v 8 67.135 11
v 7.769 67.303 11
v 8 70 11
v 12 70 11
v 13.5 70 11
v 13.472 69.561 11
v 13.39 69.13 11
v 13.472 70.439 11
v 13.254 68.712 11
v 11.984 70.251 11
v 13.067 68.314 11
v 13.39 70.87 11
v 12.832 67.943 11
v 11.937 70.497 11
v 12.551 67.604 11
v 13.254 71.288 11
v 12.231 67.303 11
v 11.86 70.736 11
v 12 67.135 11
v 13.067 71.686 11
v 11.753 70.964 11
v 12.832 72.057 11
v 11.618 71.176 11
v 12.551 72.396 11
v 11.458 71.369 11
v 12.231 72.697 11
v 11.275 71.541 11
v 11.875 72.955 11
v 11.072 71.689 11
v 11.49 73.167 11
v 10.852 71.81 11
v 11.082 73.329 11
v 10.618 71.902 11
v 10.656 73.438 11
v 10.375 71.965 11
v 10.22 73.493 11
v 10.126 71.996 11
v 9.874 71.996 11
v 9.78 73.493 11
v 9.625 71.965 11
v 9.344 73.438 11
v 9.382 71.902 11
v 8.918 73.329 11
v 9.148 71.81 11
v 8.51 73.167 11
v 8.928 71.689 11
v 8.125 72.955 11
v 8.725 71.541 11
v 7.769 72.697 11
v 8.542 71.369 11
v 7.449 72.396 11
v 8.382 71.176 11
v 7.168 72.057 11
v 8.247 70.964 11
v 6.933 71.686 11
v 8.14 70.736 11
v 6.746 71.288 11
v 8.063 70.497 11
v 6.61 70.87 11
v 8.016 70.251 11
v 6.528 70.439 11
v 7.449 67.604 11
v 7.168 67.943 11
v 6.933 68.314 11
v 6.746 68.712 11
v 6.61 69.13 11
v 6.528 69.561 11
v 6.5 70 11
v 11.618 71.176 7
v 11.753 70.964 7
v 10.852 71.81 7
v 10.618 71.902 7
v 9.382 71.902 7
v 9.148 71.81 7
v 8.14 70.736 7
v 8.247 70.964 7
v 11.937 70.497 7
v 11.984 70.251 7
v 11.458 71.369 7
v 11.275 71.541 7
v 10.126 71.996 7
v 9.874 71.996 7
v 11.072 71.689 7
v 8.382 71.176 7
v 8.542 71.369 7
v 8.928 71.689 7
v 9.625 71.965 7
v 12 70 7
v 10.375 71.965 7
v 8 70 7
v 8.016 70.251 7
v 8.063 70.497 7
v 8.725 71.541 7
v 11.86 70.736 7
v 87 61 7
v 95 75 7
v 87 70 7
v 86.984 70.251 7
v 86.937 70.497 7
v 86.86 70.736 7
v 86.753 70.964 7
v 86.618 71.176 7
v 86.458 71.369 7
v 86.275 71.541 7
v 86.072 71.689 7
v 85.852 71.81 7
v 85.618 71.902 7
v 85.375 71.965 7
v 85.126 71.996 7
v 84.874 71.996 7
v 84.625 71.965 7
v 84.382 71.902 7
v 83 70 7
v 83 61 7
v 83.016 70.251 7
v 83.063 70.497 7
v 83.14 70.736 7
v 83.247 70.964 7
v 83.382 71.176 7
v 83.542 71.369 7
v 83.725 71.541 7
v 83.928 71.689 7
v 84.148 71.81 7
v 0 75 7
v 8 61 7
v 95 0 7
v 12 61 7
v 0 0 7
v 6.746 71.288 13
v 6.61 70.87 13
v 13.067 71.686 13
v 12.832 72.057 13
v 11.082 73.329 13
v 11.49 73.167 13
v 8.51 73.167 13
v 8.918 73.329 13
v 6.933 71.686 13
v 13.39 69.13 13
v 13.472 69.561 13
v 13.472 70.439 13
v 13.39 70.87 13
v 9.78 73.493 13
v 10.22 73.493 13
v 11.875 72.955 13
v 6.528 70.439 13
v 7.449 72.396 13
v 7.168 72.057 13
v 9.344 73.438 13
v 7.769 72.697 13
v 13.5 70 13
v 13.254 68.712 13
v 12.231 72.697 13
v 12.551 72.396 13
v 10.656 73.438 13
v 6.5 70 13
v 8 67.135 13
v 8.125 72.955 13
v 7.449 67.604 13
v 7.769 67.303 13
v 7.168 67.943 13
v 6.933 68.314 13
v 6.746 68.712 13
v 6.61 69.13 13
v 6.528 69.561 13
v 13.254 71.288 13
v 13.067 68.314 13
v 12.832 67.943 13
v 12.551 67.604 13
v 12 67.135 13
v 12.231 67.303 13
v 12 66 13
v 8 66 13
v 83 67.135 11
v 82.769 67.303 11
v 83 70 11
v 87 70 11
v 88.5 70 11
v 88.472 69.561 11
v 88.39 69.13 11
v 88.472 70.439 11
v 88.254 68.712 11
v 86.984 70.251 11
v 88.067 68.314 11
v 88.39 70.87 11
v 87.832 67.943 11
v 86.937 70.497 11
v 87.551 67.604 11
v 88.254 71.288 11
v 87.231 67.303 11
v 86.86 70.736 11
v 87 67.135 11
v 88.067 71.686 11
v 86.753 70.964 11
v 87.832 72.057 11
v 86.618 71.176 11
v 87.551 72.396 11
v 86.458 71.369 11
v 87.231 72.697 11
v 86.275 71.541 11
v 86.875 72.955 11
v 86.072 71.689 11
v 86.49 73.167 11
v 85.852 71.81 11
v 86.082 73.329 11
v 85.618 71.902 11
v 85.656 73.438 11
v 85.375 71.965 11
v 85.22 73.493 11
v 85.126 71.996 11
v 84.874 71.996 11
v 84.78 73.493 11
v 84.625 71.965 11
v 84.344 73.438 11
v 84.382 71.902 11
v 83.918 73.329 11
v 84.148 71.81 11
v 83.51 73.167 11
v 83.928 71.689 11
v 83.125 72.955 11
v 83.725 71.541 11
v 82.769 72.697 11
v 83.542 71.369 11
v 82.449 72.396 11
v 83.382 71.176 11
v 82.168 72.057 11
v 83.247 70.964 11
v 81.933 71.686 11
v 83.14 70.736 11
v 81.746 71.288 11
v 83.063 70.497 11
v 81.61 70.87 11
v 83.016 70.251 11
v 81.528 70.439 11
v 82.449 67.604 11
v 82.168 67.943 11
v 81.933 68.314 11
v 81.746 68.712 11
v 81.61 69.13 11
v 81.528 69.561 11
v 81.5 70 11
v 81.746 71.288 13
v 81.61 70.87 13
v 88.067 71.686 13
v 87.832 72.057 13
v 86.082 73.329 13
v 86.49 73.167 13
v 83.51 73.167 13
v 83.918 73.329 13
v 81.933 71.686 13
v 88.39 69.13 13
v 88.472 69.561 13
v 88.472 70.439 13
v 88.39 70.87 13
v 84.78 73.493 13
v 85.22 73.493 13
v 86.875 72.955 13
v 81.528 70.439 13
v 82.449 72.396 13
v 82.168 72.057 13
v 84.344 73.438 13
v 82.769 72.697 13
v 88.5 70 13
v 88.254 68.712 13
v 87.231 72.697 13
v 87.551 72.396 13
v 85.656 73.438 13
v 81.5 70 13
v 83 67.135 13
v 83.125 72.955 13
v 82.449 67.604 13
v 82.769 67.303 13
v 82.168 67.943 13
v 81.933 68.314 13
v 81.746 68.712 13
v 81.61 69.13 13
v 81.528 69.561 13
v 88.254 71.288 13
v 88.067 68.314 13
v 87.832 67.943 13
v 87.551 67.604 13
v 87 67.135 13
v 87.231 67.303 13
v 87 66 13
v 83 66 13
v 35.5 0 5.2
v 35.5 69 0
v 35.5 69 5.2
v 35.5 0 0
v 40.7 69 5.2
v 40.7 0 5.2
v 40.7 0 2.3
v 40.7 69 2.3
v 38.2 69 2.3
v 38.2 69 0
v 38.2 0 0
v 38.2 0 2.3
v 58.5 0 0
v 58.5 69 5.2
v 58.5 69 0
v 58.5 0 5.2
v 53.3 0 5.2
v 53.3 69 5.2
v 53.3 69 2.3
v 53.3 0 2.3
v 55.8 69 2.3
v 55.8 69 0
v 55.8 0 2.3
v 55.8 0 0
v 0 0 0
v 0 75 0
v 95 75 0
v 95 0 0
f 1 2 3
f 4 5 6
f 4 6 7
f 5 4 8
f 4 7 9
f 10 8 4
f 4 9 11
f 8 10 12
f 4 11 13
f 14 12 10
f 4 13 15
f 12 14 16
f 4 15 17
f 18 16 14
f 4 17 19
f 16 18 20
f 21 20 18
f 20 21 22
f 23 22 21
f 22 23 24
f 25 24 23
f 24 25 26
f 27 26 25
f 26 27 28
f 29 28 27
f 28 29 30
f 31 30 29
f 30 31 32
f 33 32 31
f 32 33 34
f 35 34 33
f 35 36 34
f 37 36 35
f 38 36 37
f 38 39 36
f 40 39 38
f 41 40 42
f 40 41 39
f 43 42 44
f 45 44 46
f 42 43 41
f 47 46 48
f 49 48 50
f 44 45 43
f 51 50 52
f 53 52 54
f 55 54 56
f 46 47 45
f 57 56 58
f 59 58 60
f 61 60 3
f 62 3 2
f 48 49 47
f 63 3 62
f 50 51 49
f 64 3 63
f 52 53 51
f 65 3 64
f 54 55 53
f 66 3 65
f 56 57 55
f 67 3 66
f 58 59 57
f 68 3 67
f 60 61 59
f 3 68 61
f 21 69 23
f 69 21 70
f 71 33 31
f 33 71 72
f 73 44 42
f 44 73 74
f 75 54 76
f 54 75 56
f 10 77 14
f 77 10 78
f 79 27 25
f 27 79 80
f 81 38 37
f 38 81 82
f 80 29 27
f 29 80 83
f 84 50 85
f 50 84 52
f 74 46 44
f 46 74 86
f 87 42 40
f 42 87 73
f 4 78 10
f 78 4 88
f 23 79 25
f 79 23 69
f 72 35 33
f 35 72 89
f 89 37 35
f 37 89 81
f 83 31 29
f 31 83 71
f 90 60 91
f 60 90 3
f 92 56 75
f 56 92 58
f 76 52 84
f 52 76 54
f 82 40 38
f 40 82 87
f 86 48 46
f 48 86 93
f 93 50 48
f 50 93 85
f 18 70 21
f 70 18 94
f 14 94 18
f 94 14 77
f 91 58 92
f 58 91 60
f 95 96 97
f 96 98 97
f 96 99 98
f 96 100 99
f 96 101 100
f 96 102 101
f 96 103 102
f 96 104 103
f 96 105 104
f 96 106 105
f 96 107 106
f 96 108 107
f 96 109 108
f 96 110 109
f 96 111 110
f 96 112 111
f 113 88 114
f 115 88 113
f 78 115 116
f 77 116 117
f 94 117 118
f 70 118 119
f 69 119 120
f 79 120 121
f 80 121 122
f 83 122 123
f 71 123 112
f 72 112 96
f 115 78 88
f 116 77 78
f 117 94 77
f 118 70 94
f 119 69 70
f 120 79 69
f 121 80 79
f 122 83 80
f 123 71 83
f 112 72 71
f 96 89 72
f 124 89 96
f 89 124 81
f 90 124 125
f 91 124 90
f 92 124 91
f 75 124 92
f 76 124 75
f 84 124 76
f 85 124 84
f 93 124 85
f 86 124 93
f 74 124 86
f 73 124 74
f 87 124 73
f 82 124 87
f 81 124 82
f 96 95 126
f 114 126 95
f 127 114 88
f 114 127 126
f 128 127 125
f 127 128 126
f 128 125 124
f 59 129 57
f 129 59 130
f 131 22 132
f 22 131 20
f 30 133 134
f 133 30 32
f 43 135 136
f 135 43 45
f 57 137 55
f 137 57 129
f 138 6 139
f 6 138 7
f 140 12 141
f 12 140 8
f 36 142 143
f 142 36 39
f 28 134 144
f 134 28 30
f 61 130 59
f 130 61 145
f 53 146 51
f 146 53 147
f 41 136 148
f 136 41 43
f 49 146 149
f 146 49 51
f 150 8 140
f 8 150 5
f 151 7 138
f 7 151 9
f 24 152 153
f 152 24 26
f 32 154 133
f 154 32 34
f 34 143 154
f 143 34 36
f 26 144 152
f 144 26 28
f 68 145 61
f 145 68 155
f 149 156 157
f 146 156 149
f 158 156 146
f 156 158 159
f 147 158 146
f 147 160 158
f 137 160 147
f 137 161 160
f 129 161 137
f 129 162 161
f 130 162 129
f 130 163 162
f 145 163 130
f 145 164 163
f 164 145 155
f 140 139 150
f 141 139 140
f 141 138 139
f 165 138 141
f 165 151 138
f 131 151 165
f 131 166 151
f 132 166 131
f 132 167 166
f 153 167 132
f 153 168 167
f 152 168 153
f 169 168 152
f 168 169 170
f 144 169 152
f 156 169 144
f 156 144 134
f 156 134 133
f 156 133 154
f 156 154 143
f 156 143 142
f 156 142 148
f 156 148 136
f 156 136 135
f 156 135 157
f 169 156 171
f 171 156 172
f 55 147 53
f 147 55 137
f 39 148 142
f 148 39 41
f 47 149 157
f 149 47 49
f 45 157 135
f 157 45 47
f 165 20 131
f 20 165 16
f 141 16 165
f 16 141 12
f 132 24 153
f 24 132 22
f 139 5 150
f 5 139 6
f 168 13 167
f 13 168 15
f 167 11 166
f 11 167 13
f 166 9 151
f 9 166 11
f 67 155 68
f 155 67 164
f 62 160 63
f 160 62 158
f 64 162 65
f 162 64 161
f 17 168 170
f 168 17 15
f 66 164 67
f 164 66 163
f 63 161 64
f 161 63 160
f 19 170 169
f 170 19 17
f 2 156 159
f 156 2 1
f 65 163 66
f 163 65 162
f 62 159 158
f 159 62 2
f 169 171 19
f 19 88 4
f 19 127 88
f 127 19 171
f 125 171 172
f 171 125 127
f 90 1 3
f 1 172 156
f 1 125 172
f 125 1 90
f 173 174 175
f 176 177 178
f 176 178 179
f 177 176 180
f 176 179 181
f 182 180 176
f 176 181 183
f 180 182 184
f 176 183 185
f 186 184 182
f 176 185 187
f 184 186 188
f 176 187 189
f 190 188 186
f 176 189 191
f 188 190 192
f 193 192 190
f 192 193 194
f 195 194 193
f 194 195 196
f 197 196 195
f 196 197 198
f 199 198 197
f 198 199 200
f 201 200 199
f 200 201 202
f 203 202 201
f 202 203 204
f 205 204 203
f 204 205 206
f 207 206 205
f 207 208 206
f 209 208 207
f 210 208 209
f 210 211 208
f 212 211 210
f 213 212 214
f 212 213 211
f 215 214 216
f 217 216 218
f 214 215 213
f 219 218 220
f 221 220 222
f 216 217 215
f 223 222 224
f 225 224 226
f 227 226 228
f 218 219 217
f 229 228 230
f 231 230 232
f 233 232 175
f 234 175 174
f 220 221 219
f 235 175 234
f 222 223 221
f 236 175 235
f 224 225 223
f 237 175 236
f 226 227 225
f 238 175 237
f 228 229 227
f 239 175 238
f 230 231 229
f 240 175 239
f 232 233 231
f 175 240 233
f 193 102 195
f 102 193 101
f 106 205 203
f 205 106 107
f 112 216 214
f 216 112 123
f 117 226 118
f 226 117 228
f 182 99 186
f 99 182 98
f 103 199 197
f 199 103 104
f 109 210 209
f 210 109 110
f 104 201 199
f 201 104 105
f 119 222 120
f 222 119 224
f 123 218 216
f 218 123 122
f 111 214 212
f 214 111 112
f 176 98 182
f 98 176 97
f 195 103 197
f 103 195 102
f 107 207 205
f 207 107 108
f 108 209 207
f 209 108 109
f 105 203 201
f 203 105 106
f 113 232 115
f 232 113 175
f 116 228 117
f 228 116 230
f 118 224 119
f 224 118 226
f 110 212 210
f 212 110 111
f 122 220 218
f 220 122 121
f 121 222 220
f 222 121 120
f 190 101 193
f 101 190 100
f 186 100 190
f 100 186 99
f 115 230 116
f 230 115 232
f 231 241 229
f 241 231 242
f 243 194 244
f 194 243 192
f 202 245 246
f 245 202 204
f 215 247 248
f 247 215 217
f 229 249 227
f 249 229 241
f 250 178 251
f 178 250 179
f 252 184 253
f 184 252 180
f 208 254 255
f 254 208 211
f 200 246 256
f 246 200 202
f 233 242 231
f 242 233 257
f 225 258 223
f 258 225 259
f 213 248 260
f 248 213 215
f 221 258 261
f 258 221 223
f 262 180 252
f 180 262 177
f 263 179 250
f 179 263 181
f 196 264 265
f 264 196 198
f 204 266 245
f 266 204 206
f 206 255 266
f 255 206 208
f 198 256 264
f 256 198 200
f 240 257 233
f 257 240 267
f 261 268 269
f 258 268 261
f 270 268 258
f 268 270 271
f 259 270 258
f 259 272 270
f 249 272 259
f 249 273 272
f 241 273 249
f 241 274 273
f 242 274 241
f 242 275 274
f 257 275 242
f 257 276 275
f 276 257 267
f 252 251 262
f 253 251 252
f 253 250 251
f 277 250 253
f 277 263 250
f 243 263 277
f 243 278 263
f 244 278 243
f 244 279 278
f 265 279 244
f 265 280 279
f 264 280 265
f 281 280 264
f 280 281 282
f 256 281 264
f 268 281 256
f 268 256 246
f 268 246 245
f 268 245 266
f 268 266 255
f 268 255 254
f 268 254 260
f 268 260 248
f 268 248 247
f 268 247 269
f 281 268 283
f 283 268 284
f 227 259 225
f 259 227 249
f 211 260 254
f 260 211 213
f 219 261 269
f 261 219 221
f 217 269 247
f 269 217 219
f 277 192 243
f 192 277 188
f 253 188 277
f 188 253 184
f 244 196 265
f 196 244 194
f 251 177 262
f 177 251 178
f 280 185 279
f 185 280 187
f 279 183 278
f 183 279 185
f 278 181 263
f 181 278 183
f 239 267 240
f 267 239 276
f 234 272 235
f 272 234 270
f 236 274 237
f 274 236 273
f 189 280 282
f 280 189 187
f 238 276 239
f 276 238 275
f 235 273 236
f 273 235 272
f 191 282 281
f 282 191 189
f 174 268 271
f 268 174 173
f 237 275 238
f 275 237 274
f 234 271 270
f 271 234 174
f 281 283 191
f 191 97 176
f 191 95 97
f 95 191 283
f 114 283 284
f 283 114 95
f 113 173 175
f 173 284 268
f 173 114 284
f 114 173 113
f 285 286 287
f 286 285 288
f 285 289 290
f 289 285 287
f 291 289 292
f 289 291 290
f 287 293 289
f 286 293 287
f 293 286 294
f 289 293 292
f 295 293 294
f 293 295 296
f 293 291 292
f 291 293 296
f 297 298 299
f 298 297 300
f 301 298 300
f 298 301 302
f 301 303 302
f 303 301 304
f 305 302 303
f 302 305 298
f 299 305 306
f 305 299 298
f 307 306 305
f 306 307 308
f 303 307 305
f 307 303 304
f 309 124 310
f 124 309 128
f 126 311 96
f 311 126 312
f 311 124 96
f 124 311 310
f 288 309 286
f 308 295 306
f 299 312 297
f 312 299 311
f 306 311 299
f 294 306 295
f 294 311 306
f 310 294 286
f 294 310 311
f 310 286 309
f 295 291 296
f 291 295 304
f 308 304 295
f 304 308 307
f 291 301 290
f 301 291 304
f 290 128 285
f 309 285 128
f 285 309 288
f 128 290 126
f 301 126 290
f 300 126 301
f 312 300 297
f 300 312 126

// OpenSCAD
// This connects the official raspberry pi 7" display case to the suction cup mount rails

$fn=50;

internalWidth = 18;
internalHeight = 25;
internalDepth = 2;

externalX = 95;
externalY = 75;
externalDepth = 2;

// V2 with .2 mm leeway

thickness=5;

translate([externalX/2, externalY-5, externalDepth+thickness]) {
    translate([-75/2, 0, 0]) {
        mountingPoint();
    }
    translate([75/2, 0, 0]) {
        mountingPoint();
    }
}
difference() {
    translate([0, 0, 0]) {
        cube([externalX, externalY, externalDepth+thickness]);
    }
    union() {
        translate([externalX/2, -5, 0]) {
            rails(thickness);
        }
    } 
}

module rail() {
	difference() {
		translate([0, 0, -1]) {
			cube([5.2, externalY, 6.2]);
		}
		translate([2.7, -1, -0.7]) {
			cube([3, externalY+2, 3]);
		}
	}
}

module rails(thickness) {
	translate([-12, -1, 0]) {
		rail();
		translate([23, 0, 0]) {
			mirror([1, 0, 0]) {
				rail();
			}
		}
	}
}

module mountingPoint() {
    difference() {
        cylinder(6, 3.5, 3.5);
        difference() {
            translate([0, 0, -1]) {
                cylinder(5, 7, 7);
            }
            cylinder(4, 2, 2);
        }
    }
    hull() {
        cylinder(6, 2, 2);
        translate([-2, -9, 0]) {
            triangularPrism(4, 5, 6);
        }
    }
}

module triangularPrism(l, w, h){
   polyhedron(
           points=[[0,0,0], [l,0,0], [l,w,0], [0,w,0], [0,w,h], [l,w,h]],
           faces=[[0,1,2,3],[5,4,3,2],[0,4,5,1],[0,3,4],[5,2,1]]
           );
}
